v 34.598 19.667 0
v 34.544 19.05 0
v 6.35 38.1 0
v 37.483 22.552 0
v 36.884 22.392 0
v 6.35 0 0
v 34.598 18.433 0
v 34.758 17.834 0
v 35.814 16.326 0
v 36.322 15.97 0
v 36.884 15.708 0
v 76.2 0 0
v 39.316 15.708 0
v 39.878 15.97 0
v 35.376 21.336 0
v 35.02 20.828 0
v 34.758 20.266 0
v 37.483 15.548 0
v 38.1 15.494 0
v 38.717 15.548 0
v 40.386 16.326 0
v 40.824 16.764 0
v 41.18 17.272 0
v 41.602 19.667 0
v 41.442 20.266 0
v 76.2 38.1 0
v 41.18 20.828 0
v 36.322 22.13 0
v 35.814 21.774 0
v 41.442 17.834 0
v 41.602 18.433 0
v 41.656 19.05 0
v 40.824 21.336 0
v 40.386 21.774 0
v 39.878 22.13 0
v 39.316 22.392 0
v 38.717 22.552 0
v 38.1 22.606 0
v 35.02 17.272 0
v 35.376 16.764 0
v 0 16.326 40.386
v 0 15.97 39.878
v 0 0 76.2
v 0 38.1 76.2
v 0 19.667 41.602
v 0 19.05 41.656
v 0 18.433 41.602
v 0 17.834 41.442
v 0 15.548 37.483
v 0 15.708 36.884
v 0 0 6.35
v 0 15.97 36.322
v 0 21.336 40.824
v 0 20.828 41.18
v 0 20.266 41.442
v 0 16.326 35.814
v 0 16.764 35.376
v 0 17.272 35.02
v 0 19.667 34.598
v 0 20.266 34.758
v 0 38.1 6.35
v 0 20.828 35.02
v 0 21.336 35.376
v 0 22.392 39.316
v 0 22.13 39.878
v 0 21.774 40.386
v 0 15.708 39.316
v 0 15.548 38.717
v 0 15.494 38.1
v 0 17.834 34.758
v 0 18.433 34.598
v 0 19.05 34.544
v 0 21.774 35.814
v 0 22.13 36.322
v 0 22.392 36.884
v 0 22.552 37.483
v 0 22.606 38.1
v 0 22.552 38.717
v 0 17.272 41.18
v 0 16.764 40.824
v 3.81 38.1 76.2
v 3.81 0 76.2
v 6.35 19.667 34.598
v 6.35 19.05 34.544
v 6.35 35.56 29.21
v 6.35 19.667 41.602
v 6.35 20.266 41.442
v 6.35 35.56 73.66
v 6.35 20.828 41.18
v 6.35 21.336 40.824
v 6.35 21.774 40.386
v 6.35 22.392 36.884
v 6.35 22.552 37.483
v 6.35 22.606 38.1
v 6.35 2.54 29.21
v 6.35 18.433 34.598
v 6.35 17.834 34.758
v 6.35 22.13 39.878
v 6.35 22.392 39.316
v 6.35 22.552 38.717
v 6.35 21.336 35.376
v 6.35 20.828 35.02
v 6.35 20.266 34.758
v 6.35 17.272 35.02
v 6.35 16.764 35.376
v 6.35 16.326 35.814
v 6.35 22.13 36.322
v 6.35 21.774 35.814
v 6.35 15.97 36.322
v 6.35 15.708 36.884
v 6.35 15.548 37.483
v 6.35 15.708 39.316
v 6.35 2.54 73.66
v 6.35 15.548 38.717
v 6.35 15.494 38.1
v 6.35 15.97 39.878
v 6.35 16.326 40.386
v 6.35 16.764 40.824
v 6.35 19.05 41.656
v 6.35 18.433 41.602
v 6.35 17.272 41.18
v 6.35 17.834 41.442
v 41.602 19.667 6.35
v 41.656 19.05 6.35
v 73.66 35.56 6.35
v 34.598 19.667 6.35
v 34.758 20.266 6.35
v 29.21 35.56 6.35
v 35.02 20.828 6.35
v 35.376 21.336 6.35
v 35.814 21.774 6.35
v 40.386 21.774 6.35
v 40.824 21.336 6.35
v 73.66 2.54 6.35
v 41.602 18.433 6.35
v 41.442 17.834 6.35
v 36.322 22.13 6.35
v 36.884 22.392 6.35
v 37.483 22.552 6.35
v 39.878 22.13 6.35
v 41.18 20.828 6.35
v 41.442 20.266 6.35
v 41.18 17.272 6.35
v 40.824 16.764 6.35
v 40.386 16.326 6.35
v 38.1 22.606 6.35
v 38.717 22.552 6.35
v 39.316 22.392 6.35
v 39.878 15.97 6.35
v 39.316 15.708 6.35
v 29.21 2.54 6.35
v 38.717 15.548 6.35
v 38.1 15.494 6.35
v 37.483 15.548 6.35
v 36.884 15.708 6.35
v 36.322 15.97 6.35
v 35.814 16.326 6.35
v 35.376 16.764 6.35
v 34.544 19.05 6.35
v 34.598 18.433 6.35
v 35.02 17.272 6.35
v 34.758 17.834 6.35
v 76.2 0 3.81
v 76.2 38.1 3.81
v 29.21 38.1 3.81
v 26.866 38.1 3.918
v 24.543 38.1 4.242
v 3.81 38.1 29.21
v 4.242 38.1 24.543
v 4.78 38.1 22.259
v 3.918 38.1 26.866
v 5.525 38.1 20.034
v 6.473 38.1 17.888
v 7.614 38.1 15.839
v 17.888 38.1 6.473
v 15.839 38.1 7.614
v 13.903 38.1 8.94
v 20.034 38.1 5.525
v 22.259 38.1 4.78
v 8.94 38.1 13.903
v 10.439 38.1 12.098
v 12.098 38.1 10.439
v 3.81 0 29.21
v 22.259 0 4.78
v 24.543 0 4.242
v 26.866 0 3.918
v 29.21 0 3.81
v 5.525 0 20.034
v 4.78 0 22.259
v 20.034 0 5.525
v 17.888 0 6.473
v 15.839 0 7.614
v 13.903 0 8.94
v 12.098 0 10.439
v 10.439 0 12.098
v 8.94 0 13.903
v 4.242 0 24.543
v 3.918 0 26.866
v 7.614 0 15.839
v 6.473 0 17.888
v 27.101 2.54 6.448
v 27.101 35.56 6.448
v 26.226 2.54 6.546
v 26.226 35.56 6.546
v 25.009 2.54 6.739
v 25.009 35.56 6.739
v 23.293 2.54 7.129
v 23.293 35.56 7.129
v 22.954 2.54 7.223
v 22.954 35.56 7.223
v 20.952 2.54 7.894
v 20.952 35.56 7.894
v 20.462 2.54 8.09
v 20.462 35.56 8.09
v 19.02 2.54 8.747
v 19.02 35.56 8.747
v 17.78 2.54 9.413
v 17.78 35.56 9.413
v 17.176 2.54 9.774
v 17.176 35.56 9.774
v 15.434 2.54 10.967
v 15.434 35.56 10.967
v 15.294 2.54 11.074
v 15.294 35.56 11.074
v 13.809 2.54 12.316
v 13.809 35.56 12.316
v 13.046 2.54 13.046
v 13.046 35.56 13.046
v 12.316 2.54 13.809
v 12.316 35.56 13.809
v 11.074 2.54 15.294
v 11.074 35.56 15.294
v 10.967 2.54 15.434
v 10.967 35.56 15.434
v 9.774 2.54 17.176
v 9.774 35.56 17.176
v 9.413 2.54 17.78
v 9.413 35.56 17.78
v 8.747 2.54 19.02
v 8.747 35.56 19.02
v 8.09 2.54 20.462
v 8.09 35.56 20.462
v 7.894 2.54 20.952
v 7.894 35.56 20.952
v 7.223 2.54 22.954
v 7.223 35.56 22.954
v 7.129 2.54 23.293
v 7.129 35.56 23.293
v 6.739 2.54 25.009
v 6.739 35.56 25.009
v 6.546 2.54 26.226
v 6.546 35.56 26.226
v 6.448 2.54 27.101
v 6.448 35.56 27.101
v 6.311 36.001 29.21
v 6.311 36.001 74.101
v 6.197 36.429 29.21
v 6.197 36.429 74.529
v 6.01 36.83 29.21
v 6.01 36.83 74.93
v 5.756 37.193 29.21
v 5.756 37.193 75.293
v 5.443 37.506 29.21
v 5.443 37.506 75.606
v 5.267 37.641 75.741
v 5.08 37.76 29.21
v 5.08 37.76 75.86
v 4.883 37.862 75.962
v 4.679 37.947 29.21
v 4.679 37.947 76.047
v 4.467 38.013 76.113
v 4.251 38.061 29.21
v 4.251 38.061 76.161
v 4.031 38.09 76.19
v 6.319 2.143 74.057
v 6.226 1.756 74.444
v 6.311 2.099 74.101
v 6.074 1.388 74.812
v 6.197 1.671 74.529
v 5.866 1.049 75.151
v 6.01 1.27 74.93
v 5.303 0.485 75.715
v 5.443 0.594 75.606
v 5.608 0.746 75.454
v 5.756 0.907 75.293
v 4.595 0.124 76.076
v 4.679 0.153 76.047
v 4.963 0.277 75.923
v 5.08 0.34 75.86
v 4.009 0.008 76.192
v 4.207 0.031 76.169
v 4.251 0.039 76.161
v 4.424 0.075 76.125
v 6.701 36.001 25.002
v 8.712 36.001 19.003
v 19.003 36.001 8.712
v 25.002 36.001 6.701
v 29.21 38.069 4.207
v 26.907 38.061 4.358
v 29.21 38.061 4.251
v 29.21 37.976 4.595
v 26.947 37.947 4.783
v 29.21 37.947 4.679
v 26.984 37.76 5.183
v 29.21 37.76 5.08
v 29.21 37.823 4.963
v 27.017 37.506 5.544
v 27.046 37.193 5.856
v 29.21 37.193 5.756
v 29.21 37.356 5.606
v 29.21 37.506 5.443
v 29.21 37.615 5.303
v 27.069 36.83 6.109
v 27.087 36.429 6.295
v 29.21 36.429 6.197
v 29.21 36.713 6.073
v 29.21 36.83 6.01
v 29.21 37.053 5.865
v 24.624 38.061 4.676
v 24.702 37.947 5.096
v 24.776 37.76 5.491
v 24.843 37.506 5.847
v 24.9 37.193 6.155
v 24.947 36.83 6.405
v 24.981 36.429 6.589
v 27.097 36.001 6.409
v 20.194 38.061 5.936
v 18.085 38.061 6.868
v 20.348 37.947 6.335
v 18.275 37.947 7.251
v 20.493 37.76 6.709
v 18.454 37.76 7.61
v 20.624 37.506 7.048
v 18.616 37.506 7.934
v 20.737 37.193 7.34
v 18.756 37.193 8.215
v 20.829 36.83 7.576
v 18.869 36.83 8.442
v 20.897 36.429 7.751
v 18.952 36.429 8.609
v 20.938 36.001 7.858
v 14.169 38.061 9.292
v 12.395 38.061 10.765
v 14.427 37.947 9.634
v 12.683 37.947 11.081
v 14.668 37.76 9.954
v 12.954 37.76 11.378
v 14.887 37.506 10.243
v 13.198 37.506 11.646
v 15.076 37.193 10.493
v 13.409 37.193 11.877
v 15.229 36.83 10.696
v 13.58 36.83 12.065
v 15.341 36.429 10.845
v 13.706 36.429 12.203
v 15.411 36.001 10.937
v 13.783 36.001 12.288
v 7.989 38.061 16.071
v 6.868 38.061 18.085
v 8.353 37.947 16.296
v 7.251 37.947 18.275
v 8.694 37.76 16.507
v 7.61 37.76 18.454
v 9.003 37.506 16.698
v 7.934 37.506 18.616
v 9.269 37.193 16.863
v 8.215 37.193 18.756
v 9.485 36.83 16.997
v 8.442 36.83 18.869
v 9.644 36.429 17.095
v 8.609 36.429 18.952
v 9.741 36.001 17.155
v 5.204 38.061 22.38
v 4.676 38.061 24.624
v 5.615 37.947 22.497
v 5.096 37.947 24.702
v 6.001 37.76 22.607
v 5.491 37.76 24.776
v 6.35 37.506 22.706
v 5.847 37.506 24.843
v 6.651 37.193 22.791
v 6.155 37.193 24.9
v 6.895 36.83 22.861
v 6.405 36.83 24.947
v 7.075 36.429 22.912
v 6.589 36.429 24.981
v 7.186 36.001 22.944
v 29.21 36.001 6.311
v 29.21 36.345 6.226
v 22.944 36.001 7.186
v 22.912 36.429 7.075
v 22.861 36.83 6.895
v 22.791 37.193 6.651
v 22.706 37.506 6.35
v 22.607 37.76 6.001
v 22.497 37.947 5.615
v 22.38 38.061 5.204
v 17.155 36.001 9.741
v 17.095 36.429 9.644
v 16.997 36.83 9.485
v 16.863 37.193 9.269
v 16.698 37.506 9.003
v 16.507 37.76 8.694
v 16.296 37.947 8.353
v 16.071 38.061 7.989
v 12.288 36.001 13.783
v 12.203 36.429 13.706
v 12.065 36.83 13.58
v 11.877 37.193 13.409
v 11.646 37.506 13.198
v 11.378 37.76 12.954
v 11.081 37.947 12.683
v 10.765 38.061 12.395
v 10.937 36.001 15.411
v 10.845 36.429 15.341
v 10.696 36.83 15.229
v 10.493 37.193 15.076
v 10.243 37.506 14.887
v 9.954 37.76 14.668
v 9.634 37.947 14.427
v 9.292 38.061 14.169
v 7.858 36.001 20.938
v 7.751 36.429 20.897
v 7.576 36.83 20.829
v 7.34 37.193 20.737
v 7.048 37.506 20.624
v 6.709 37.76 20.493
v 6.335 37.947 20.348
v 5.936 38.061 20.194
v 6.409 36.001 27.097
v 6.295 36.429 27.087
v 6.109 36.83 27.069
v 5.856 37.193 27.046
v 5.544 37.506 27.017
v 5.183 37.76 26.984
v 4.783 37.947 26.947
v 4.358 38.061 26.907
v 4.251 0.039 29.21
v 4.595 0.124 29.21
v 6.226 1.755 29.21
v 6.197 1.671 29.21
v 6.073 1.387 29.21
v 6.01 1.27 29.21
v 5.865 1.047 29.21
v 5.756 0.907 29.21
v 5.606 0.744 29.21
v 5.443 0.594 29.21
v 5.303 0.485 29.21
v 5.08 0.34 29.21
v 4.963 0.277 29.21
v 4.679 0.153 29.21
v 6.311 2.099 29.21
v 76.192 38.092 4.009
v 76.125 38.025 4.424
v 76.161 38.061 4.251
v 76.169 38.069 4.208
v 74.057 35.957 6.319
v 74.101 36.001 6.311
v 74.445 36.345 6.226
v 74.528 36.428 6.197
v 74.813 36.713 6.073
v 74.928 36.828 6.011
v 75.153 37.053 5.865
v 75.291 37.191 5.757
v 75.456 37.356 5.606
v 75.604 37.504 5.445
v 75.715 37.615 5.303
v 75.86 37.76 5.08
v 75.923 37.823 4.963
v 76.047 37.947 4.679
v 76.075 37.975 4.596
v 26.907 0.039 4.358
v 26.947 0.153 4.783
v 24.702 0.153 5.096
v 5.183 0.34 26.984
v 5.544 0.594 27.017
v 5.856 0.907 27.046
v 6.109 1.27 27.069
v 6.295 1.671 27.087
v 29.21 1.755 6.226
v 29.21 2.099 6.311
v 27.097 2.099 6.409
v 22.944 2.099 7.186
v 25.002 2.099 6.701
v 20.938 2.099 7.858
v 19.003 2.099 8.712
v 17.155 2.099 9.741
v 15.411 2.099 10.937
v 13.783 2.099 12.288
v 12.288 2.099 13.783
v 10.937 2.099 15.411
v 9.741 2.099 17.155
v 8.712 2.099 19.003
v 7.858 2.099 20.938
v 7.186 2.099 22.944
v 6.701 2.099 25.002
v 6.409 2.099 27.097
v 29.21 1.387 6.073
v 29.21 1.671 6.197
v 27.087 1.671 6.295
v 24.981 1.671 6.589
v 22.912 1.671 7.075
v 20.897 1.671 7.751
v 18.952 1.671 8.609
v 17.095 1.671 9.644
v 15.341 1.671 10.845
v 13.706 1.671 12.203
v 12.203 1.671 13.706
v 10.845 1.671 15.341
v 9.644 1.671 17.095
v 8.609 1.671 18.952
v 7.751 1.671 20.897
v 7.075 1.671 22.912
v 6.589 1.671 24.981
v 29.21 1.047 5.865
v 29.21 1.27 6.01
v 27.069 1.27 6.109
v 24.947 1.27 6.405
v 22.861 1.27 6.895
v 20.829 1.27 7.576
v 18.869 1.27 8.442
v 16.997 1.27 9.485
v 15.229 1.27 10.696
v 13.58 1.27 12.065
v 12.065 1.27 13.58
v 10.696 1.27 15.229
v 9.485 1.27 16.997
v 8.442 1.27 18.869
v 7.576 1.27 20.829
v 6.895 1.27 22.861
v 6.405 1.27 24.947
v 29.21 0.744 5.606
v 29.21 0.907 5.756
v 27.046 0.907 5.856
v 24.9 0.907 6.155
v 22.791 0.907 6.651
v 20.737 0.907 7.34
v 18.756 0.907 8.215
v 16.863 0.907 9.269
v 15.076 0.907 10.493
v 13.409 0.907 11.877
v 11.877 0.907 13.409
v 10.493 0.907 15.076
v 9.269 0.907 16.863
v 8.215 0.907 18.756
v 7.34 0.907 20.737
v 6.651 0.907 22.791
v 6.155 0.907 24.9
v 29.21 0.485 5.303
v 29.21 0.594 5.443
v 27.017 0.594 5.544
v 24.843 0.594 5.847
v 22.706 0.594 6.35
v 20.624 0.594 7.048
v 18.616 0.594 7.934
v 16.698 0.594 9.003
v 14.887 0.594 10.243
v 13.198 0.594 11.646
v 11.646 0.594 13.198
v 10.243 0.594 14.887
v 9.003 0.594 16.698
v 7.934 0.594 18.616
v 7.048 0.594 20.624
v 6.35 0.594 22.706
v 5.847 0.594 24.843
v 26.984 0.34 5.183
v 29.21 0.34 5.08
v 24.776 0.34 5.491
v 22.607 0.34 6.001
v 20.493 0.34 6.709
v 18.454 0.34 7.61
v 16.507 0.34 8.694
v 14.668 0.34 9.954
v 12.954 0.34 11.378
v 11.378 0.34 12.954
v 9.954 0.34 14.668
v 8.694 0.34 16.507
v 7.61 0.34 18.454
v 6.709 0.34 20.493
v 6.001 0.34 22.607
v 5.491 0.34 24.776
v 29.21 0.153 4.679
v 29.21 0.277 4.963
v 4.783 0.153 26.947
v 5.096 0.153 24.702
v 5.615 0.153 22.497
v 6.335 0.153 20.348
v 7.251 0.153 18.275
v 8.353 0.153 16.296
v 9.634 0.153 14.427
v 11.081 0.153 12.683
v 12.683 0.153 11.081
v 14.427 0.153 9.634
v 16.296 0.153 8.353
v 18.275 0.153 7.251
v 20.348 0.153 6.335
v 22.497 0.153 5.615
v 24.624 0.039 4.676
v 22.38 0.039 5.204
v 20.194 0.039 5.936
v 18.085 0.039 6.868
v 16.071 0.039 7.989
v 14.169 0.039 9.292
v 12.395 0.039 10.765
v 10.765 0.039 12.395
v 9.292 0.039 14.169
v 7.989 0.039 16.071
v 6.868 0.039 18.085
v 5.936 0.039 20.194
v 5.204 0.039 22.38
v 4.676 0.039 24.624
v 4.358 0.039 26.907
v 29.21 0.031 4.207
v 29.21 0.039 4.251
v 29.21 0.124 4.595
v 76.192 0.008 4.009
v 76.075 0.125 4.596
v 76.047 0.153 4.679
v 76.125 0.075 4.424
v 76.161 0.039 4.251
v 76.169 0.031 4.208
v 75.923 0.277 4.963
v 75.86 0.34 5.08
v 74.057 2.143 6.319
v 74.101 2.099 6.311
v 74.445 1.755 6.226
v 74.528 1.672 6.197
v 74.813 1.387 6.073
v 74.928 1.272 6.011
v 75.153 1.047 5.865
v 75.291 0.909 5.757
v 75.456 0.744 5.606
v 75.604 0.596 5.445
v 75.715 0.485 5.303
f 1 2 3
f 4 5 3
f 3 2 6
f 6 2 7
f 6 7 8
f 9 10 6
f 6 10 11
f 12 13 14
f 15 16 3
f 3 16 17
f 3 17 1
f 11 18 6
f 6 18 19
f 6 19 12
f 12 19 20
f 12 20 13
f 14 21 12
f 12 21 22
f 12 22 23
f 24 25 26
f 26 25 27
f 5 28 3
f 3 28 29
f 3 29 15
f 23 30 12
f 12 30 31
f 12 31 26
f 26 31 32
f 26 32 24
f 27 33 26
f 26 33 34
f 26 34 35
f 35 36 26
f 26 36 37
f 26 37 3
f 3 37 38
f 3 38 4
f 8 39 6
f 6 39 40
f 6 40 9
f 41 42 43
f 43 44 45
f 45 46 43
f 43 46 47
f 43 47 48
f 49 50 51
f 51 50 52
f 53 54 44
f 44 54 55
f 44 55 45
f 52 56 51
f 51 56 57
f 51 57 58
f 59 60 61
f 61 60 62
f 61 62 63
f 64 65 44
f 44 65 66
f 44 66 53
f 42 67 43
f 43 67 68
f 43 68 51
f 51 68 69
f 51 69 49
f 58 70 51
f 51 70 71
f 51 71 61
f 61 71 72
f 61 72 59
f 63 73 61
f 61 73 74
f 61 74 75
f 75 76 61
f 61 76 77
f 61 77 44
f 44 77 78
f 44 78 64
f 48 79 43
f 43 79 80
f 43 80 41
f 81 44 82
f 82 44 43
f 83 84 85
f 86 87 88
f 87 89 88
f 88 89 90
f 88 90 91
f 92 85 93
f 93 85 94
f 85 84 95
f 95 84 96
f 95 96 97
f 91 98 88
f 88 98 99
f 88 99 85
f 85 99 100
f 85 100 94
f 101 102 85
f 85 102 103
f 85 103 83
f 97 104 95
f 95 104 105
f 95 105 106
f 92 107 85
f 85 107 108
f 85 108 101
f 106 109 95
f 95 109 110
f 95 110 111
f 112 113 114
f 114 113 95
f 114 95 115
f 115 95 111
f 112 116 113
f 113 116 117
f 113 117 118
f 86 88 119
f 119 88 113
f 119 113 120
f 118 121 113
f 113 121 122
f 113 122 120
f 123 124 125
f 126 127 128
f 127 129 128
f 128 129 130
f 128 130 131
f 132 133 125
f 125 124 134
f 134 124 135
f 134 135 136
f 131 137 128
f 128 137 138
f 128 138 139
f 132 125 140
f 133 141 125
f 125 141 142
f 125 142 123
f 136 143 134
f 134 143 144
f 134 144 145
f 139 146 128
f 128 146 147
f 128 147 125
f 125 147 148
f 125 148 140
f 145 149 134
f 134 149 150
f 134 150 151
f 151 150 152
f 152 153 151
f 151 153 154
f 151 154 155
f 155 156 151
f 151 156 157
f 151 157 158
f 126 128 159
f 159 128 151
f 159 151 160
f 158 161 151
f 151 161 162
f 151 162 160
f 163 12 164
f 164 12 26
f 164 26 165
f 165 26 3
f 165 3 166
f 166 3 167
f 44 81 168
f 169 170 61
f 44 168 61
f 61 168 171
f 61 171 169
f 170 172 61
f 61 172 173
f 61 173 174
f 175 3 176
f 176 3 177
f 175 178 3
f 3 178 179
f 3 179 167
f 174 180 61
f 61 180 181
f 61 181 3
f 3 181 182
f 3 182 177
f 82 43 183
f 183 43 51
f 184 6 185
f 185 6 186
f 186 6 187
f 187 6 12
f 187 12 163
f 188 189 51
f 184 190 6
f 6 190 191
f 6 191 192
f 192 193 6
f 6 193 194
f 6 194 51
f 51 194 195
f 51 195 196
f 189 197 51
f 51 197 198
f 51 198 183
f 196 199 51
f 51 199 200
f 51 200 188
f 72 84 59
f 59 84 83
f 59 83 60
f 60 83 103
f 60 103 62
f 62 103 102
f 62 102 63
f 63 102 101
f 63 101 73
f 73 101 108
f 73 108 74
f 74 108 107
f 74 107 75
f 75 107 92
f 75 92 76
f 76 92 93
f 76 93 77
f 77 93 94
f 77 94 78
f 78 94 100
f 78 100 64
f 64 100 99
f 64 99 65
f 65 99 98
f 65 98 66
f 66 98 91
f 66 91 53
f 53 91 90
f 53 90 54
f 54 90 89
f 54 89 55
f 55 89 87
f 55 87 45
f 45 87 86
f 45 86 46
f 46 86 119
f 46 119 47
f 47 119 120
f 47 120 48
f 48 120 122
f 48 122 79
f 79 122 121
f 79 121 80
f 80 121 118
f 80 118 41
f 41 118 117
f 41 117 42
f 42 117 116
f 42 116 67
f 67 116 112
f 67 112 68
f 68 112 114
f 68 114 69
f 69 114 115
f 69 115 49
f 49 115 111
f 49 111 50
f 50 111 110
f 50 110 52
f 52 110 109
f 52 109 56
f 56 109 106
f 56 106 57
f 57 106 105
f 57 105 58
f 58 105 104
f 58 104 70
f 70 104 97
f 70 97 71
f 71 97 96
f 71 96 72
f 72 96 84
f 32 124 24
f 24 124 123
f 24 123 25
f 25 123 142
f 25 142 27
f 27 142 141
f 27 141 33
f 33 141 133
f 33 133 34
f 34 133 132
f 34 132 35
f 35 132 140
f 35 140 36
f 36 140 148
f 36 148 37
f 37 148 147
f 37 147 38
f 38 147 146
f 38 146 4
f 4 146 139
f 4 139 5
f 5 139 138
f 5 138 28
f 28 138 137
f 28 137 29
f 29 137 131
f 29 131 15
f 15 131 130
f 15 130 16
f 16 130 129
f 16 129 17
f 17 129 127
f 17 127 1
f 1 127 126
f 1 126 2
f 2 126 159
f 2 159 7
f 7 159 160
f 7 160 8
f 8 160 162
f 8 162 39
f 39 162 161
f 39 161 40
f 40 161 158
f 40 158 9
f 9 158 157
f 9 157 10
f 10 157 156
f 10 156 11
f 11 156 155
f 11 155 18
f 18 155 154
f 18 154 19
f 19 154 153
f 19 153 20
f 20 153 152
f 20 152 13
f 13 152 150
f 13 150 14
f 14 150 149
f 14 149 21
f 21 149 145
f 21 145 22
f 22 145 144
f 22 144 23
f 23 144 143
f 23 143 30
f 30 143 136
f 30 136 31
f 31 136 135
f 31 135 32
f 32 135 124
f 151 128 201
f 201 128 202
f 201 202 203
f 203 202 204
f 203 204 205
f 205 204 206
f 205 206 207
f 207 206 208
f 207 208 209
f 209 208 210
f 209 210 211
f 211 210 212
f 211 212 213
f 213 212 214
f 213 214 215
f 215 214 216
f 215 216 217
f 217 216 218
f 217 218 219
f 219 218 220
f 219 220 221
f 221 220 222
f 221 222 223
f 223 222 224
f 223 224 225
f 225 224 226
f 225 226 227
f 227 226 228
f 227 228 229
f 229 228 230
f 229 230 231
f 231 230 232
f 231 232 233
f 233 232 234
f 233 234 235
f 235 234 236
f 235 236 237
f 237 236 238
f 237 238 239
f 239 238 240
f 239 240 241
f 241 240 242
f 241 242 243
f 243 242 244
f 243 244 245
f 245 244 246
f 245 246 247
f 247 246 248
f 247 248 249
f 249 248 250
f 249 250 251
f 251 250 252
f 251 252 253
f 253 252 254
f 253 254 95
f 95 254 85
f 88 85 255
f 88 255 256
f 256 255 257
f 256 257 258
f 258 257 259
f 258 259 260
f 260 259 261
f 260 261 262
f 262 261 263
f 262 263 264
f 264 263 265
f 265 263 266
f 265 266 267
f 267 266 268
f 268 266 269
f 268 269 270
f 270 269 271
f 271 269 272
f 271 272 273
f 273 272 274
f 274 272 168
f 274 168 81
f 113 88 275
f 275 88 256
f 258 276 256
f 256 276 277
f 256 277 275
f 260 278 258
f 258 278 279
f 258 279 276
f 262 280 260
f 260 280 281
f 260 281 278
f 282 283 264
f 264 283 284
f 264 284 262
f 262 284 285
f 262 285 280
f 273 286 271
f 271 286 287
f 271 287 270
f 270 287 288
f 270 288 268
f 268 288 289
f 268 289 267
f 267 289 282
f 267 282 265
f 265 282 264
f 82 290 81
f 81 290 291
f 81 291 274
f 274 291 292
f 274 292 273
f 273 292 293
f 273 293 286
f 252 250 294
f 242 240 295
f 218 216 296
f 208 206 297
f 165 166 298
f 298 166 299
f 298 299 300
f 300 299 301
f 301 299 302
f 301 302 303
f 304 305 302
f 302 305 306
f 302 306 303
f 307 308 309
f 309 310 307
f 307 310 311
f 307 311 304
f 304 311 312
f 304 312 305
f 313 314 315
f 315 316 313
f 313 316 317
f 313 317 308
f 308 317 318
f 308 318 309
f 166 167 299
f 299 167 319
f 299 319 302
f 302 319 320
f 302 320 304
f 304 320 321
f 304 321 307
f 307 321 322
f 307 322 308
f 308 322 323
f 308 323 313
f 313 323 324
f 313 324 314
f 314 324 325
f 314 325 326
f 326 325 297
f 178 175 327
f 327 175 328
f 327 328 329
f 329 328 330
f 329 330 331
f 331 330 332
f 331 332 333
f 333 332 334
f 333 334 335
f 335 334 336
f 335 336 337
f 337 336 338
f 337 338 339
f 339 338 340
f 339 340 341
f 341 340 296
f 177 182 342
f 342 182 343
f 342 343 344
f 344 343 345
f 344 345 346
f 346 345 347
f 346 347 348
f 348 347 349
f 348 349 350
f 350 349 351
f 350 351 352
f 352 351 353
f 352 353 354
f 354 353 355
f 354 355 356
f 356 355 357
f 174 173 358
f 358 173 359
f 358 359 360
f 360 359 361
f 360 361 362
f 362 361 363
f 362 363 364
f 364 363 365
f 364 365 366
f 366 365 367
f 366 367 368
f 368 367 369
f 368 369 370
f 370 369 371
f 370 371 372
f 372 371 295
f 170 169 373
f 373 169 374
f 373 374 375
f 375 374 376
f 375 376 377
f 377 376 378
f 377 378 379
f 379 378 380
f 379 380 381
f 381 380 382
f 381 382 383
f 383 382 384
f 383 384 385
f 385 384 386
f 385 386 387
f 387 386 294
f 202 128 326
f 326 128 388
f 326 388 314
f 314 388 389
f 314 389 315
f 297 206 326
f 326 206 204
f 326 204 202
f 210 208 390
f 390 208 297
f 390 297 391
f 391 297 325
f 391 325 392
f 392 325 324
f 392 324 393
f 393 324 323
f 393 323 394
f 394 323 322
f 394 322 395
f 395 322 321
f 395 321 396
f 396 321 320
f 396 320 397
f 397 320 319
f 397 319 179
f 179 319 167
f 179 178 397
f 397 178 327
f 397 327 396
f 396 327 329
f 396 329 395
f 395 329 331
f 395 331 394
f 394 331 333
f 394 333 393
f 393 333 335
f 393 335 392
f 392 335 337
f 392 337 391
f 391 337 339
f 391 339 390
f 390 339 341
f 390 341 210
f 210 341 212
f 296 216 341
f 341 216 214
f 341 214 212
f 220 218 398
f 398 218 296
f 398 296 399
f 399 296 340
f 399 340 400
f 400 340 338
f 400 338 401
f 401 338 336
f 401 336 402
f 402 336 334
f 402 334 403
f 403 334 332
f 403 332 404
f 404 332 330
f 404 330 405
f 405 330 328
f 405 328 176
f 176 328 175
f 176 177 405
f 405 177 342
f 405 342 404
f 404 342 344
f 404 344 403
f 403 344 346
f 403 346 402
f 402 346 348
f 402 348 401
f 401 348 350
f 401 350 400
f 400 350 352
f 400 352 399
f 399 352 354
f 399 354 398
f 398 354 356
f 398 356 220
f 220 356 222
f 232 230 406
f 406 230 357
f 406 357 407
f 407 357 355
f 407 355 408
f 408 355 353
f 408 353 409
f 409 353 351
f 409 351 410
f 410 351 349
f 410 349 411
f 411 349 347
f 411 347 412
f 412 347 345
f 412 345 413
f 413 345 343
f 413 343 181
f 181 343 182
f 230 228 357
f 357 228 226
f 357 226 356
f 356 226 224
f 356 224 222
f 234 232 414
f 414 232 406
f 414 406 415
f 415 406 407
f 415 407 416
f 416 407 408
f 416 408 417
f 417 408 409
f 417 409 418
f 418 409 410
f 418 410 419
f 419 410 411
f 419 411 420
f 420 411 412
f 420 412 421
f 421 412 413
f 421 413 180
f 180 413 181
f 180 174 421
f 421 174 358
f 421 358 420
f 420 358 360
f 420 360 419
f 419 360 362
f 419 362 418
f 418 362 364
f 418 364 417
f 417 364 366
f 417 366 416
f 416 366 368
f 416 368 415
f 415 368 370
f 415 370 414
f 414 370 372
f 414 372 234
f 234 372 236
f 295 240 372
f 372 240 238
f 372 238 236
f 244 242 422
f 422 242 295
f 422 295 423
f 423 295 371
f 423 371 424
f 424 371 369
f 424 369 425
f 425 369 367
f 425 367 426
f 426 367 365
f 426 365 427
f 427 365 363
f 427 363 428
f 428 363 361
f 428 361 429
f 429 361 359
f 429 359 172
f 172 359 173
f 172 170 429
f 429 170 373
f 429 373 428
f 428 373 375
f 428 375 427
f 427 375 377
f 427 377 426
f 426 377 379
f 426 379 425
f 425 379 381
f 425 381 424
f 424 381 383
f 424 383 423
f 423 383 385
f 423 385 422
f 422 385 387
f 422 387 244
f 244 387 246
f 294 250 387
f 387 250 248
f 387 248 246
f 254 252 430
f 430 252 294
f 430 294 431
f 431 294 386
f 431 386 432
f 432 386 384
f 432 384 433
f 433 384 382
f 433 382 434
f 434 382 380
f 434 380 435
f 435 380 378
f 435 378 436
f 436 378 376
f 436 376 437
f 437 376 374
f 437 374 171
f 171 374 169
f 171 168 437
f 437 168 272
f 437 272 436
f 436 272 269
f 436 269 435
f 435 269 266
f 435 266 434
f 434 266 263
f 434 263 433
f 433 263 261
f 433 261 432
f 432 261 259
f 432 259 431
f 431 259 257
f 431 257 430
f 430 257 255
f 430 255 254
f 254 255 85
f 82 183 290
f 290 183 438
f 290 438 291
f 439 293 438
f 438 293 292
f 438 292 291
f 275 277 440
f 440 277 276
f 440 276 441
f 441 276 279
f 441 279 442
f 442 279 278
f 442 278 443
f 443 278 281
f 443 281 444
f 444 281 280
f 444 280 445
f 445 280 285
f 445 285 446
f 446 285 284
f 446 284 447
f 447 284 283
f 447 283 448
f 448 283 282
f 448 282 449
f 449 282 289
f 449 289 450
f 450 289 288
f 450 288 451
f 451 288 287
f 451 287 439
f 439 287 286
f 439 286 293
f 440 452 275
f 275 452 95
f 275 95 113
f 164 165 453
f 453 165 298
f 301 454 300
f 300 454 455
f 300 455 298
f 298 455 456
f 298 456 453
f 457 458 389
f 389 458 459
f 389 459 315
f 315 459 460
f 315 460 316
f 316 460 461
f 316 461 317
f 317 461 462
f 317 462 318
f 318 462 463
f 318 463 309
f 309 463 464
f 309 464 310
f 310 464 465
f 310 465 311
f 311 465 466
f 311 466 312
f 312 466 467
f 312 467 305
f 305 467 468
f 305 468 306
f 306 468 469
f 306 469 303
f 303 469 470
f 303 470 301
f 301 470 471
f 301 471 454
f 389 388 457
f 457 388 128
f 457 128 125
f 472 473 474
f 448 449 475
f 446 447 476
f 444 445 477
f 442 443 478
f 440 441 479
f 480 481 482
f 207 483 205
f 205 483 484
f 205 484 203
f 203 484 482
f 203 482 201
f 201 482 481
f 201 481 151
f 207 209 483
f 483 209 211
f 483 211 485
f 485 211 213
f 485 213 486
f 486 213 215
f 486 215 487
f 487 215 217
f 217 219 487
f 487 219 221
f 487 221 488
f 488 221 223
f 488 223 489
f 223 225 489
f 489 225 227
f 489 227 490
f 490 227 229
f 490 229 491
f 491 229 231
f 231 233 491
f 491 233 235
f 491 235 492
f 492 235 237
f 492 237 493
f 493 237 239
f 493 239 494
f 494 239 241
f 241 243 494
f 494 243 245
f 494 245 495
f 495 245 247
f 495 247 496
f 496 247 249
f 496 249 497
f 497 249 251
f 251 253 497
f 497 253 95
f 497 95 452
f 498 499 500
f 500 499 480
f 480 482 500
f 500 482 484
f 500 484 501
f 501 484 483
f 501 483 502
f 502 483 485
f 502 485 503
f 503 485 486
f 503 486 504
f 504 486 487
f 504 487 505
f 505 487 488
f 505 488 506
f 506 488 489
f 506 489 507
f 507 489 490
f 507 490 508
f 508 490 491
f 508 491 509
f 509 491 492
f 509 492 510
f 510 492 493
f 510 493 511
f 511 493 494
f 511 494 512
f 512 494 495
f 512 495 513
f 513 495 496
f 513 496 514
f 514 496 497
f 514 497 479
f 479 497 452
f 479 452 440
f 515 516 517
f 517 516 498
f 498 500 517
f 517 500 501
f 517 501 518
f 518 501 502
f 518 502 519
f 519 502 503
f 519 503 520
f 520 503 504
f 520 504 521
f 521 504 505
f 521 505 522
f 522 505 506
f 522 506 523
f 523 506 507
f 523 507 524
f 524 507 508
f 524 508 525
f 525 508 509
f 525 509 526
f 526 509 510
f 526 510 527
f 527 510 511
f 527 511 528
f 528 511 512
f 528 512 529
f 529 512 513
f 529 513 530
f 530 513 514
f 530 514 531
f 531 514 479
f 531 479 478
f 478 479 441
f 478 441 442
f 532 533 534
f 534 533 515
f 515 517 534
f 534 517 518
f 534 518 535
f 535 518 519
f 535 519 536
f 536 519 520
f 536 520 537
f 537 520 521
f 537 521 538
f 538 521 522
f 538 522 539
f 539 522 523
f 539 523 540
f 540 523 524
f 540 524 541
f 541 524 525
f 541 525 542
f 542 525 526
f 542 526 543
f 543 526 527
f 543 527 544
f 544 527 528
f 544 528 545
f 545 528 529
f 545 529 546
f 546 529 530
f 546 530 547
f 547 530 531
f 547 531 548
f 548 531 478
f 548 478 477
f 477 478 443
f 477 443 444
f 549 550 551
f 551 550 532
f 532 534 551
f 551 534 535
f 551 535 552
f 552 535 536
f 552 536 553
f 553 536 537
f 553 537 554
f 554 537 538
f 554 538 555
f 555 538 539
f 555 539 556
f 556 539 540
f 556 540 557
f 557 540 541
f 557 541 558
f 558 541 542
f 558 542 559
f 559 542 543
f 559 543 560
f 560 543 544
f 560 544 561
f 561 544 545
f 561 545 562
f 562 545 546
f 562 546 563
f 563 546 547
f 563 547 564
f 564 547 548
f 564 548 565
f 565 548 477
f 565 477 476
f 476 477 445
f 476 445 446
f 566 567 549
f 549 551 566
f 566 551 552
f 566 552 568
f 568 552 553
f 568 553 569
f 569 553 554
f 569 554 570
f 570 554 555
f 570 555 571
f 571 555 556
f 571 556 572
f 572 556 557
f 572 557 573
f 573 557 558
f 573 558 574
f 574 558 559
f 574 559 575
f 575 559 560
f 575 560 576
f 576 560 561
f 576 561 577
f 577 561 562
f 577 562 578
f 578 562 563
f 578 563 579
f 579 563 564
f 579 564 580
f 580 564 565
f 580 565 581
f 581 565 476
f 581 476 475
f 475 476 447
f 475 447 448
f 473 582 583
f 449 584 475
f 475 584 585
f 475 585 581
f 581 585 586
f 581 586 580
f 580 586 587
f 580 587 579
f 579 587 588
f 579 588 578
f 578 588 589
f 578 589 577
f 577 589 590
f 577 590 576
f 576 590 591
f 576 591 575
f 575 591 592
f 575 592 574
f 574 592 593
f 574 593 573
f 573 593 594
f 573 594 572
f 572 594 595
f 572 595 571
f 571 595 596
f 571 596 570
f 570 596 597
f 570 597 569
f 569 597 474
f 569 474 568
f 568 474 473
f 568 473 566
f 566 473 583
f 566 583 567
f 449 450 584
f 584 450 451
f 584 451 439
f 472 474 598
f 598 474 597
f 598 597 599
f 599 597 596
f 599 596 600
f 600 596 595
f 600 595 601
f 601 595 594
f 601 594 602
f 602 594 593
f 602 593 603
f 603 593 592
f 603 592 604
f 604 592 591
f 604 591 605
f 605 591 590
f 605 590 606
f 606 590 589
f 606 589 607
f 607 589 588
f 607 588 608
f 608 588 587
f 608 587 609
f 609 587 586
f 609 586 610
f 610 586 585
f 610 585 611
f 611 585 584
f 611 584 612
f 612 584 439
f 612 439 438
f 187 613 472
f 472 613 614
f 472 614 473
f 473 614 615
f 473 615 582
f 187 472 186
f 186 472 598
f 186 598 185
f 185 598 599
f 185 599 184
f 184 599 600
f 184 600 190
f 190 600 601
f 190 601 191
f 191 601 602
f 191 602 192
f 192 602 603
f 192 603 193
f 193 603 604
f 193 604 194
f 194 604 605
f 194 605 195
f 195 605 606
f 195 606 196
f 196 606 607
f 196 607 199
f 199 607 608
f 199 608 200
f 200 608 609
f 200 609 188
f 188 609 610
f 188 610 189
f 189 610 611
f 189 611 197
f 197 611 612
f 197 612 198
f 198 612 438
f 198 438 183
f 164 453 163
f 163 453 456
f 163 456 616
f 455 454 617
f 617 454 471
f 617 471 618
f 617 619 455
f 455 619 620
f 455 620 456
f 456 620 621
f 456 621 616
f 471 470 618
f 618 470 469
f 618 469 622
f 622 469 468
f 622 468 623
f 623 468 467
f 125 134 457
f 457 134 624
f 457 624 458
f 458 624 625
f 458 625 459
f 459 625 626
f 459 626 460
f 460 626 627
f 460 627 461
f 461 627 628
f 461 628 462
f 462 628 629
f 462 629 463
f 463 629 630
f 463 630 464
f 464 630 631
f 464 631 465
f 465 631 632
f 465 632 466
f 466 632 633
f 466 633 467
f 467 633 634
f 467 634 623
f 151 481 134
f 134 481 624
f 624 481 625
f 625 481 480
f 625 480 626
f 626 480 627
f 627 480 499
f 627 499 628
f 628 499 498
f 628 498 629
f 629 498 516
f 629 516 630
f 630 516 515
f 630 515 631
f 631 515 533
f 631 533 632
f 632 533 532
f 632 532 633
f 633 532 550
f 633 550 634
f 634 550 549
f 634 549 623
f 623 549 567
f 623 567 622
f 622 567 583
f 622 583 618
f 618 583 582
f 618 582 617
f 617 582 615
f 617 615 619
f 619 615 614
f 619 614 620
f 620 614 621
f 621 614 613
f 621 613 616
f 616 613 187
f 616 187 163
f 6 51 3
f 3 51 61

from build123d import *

# Parameters (mm, degrees)
BOSS_EXTRUDE1_DEPTH = 38.1
SKETCH2_R           = 3.556
CUT_EXTRUDE1_DEPTH  = 7.35
SKETCH3_R           = 3.556
CUT_EXTRUDE2_DEPTH  = 7.35
FILLET1_R           = 22.86
FILLET2_R           = 2.54
CHAMFER1_SIZE       = 6.35


with BuildPart() as part:
    # Sketch1 → Boss-Extrude1 (new body)
    with BuildSketch(Plane(origin=(0, 0, 0), x_dir=(1, 0, 0), z_dir=(0, 1, 0))):
        Polygon((0, 0), (0, -76.2), (6.35, -76.2), (6.35, -6.35), (76.2, -6.35), (76.2, 0), align=None)
    extrude(amount=BOSS_EXTRUDE1_DEPTH)

    # Sketch2 → Cut-Extrude1 (cut, through all)
    with BuildSketch(Plane(origin=(6.35, 0, 0), x_dir=(0, 0, -1), z_dir=(1, 0, 0))):
        with Locations((-38.1, 19.05)):
            Circle(SKETCH2_R)
    extrude(amount=-CUT_EXTRUDE1_DEPTH, mode=Mode.SUBTRACT)

    # Sketch3 → Cut-Extrude2 (cut, through all)
    with BuildSketch(Plane.XY.offset(6.35)):
        with Locations((38.1, 19.05)):
            Circle(SKETCH3_R)
    extrude(amount=-CUT_EXTRUDE2_DEPTH, mode=Mode.SUBTRACT)

    # Fillet1
    fillet1_edges = [part.edges().sort_by_distance(p)[0] for p in [
        (6.35, 19.05, 6.35),
    ]]
    fillet(fillet1_edges, radius=FILLET1_R)

    # Fillet2
    fillet2_edges = [part.edges().sort_by_distance(p)[0] for p in [
        (76.2, 19.05, 6.35),
        (6.35, 19.05, 76.2),
        (6.35, 38.1, 52.705),
        (52.705, 0, 6.35),
        (52.705, 38.1, 6.35),
        (13.045538982, 0, 13.045538982),
        (13.045538982, 38.1, 13.045538982),
        (6.35, 0, 52.705),
    ]]
    fillet(fillet2_edges, radius=FILLET2_R)

    # Chamfer1
    chamfer1_edges = [part.edges().sort_by_distance(p)[0] for p in [
        (0, 19.05, 0),
    ]]
    chamfer(chamfer1_edges, length=CHAMFER1_SIZE)


solid = part.part
